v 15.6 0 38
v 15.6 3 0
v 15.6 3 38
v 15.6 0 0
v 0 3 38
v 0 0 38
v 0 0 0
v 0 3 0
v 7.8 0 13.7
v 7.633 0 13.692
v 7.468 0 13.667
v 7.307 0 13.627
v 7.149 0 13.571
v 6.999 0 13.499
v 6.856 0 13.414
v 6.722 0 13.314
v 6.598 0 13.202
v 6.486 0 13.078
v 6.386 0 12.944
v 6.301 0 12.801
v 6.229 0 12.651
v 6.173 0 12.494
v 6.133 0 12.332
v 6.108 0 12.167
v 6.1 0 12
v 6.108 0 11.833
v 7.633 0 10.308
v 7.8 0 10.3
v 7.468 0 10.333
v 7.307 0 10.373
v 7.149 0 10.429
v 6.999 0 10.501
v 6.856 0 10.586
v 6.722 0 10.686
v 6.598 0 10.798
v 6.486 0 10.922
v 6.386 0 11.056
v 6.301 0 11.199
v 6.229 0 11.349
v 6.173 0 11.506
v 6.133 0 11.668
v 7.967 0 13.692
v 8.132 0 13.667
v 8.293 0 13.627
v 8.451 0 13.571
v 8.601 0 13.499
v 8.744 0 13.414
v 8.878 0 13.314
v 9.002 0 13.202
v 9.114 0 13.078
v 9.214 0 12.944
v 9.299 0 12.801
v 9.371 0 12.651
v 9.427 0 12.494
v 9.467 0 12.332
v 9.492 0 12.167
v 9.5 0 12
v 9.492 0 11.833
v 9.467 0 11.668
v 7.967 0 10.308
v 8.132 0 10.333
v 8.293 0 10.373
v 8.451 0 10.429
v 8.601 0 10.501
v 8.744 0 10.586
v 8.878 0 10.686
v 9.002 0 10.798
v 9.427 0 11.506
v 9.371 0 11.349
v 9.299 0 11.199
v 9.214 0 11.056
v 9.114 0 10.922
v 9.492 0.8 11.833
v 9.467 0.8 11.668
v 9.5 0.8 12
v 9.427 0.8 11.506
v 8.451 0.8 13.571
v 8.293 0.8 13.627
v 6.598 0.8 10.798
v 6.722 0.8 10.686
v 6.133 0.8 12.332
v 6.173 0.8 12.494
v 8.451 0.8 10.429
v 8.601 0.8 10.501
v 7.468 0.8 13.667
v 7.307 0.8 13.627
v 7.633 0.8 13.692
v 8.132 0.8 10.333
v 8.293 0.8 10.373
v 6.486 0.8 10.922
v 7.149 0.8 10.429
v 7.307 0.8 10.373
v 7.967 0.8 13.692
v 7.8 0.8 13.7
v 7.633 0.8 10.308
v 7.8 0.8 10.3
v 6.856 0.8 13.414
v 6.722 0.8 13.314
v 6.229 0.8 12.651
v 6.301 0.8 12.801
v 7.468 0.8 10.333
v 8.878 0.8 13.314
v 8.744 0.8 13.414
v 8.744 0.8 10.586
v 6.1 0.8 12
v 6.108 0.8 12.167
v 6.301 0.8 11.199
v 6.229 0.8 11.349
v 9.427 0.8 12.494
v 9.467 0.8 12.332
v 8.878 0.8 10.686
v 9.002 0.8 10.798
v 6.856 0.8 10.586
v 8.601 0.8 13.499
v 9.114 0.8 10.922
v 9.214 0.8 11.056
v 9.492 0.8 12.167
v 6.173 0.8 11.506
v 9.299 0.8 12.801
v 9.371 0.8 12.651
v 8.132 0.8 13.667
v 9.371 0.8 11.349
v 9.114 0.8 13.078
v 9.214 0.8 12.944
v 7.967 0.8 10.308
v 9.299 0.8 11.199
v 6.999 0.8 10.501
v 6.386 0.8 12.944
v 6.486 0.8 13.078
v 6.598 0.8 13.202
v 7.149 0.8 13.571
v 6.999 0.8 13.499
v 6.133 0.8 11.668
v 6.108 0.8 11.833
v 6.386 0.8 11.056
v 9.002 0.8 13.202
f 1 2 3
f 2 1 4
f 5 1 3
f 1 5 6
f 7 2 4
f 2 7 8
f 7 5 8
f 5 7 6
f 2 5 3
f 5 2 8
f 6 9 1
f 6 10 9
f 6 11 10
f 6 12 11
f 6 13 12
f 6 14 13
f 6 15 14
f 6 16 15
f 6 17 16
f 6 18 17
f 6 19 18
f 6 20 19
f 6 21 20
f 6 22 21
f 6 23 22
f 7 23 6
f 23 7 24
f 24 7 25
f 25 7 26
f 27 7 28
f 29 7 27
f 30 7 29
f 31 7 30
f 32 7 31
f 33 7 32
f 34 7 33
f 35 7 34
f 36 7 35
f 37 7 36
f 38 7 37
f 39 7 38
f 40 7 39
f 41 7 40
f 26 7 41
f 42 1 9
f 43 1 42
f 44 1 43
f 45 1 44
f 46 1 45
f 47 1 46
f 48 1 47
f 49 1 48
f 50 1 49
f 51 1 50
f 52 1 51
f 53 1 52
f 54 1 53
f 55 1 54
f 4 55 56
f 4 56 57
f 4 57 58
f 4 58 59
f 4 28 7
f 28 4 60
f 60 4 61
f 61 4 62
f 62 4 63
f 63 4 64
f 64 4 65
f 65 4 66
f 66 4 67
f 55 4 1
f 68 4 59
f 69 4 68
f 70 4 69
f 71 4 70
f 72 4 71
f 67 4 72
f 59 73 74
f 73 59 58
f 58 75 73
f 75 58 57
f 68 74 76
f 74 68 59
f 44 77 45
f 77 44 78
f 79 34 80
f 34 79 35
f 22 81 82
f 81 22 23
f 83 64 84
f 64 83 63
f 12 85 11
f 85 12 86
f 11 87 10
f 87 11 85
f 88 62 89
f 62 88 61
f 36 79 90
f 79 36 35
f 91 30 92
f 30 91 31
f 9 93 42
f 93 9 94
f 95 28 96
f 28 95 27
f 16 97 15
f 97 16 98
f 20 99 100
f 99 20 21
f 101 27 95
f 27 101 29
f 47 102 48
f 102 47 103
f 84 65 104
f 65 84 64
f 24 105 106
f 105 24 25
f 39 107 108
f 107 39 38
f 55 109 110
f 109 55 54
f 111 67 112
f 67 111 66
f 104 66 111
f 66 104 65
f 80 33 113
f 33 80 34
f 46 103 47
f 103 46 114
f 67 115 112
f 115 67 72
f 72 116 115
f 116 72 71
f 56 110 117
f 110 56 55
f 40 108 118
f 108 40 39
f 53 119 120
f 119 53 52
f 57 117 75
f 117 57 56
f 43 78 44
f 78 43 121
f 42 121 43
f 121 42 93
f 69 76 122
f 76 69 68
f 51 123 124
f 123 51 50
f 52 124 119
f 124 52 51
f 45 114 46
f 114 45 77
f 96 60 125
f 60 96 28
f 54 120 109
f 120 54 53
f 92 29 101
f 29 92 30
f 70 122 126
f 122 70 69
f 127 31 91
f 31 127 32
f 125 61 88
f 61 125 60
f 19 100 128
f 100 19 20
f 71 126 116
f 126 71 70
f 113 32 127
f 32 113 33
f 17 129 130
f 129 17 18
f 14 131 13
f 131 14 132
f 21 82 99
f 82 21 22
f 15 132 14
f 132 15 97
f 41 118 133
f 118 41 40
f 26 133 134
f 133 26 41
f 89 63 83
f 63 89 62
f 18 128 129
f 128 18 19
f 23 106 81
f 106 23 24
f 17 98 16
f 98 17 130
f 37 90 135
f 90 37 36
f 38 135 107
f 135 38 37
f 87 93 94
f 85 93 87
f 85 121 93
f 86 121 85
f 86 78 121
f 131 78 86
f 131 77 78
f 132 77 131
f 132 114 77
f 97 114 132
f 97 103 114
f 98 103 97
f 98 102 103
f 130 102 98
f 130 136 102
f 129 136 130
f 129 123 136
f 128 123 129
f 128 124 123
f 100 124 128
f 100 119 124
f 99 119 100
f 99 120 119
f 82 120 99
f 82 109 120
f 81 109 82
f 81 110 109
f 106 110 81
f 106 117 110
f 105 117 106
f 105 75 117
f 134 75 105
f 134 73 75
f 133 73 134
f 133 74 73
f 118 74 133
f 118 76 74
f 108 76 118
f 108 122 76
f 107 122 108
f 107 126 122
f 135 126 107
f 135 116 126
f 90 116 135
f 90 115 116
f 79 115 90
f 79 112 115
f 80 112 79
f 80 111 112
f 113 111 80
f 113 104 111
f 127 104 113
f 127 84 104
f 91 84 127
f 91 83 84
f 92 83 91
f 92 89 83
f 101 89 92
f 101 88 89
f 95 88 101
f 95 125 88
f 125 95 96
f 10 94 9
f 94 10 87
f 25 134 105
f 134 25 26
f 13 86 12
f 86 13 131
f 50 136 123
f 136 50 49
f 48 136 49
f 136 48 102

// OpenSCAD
// file: ../fj.scad
// FreeJet FJ-1 - shared dimensions and helpers.
// Coordinates (mm): X = carriage travel (left -> right, 0 = inner face of the left plate)
//                   Y = paper travel (paper moves toward +Y, 0 = printhead nozzle line)
//                   Z = up (0 = paper surface on the platen)
// Every part file includes this, so changing a number here moves everything.

$fn = 64;
e = 0.01;
tol = 0.25;          // clearance for printed fits

// ---- frame ----------------------------------------------------------------
inner_w   = 360;     // distance between the side plates
plate_t   = 8;
rod_d     = 8;       // all rods: 8 mm x 400 mm smooth rod
rod_len   = 400;
plate_y0  = -112;    // side plate outline in Y
plate_y1  = 88;
plate_z0  = -70;     // bottom of the feet
plate_z1  = 70;

// ---- carriage rods ------------------------------------------------------------
rail_y    = -42;
rail_lo_z = 14;
rail_hi_z = 50;
belt_y    = -60;     // axis line of the X motor pulley and idler (both vertical)
belt_z    = 32;      // height of the belt centre
belt_r    = 20*2/PI/2;          // 20T GT2 pitch radius
belt_front_y = belt_y + belt_r; // strand clamped to the carriage
belt_back_y  = belt_y - belt_r; // return strand, passes behind the carriage

// ---- paper path -------------------------------------------------------------
tire_od   = 22;      // drive and pinch roller outside diameter
in_y      = -76;     // input nip (rollers before the printhead)
out_y     = 52;      // output nip (star wheels after the printhead)
shaft_z   = -tire_od/2;
pinch_z   = tire_od/2;
star_od   = 18;
star_z    = star_od/2;
platen_rod_y = [-40, 26];
platen_rod_z = -13;
platen_y0 = -62;     // platen top surface extent
platen_y1 = 84;
sensor_y  = -54;     // paper lever switch
paper_x0  = 70;      // paper left edge (fixed guide)
paper_w   = 220;     // widest sheet
sensor_x  = paper_x0 + 14;   // paper lever switch X
tire_x    = [paper_x0+20, paper_x0+75, paper_x0+145, paper_x0+200];  // roller positions

// ---- feed drive ---------------------------------------------------------------
pulley_teeth = 76;   // printed GT2 pulleys on both roller shafts
feed_motor_y = -12;
feed_motor_z = -44;  // 400 mm closed GT2 loop around 76T + 76T + 20T

// ---- printhead / cartridge (MEASURE YOUR HP45 AND ADJUST) -----------------------
cart_w    = 24.5;    // across the carriage travel (X)
cart_d    = 50;      // front-to-back (Y)
cart_h    = 62;
nz_back   = 19;      // nozzle line distance from the contact (back) face
head_gap  = 1.2;     // nozzle plate height above the paper
pad_z0    = 3;       // contact pad footprint origin above the cartridge bottom
carr_w    = 54;      // carriage width along X
park_x    = 33;      // carriage centre X when parked (capped)

// ---- service station ------------------------------------------------------------
home_x    = 30;      // carriage centre X where the home switch trips (firmware X = 0)
sled_engage = 9;     // sled travel when parked (cap pressed on the nozzles)
cap_x     = park_x + sled_engage;   // cap centre with the sled retracted
wiper_x   = 56;
spit_x    = 62;      // firmware spit_x_um = (spit_x - home_x) * 1000

// ---- hardware -----------------------------------------------------------------
lm8uu_d = 15; lm8uu_l = 24;
b608_d = 22; b608_w = 7;
m3 = 3.2; m3_head = 6; m3_nut = 6.4;   // across flats + tolerance
m25 = 2.7;
nema_hole = 31; nema_body = 42.3; nema_boss = 22.5;

module rod_hole(l=40, d=rod_d+tol) { cylinder(d=d, h=l, center=true); }
module m3_hole(l=40) { cylinder(d=m3, h=l, center=true); }
module m3_nut_trap(h=3) { cylinder(d=m3_nut/cos(30), h=h, $fn=6); }
module rounded_box(size, r=3) {
    hull() for (x=[r, size[0]-r], y=[r, size[1]-r]) translate([x, y, 0]) cylinder(r=r, h=size[2]);
}
module nema17_holes(l=20, slot=0) {
    for (x=[-1,1], y=[-1,1]) hull() for (s=[-slot/2, slot/2])
        translate([x*nema_hole/2, y*nema_hole/2 + s, 0]) cylinder(d=m3, h=l, center=true);
    hull() for (s=[-slot/2, slot/2]) translate([0, s, 0]) cylinder(d=nema_boss+1, h=l, center=true);
}

// ---- carriage details ------------------------------------------------------------
carr_z0   = head_gap + 2.5;   // carriage walls stop above the nozzle plate
carr_z1   = 64;
pcb_w     = 44;  pcb_h = 46;  pcb_t = 1.6;   // printhead board
pcb_back  = 5;                 // component height behind the board
cart_rest_z = 18;              // height (above cartridge bottom) of the side rest tabs; 0 = none
// main file
// Pressure pad between the clamp screw and the cartridge front. Print in TPU if you have it
// (PETG works). 
include <../fj.scad>
difference() {
    cube([15.6, 3, 38]);
    translate([7.8, -1, 12]) rotate([-90,0,0]) cylinder(d=3.4, h=1.8);   // screw tip seat
}
